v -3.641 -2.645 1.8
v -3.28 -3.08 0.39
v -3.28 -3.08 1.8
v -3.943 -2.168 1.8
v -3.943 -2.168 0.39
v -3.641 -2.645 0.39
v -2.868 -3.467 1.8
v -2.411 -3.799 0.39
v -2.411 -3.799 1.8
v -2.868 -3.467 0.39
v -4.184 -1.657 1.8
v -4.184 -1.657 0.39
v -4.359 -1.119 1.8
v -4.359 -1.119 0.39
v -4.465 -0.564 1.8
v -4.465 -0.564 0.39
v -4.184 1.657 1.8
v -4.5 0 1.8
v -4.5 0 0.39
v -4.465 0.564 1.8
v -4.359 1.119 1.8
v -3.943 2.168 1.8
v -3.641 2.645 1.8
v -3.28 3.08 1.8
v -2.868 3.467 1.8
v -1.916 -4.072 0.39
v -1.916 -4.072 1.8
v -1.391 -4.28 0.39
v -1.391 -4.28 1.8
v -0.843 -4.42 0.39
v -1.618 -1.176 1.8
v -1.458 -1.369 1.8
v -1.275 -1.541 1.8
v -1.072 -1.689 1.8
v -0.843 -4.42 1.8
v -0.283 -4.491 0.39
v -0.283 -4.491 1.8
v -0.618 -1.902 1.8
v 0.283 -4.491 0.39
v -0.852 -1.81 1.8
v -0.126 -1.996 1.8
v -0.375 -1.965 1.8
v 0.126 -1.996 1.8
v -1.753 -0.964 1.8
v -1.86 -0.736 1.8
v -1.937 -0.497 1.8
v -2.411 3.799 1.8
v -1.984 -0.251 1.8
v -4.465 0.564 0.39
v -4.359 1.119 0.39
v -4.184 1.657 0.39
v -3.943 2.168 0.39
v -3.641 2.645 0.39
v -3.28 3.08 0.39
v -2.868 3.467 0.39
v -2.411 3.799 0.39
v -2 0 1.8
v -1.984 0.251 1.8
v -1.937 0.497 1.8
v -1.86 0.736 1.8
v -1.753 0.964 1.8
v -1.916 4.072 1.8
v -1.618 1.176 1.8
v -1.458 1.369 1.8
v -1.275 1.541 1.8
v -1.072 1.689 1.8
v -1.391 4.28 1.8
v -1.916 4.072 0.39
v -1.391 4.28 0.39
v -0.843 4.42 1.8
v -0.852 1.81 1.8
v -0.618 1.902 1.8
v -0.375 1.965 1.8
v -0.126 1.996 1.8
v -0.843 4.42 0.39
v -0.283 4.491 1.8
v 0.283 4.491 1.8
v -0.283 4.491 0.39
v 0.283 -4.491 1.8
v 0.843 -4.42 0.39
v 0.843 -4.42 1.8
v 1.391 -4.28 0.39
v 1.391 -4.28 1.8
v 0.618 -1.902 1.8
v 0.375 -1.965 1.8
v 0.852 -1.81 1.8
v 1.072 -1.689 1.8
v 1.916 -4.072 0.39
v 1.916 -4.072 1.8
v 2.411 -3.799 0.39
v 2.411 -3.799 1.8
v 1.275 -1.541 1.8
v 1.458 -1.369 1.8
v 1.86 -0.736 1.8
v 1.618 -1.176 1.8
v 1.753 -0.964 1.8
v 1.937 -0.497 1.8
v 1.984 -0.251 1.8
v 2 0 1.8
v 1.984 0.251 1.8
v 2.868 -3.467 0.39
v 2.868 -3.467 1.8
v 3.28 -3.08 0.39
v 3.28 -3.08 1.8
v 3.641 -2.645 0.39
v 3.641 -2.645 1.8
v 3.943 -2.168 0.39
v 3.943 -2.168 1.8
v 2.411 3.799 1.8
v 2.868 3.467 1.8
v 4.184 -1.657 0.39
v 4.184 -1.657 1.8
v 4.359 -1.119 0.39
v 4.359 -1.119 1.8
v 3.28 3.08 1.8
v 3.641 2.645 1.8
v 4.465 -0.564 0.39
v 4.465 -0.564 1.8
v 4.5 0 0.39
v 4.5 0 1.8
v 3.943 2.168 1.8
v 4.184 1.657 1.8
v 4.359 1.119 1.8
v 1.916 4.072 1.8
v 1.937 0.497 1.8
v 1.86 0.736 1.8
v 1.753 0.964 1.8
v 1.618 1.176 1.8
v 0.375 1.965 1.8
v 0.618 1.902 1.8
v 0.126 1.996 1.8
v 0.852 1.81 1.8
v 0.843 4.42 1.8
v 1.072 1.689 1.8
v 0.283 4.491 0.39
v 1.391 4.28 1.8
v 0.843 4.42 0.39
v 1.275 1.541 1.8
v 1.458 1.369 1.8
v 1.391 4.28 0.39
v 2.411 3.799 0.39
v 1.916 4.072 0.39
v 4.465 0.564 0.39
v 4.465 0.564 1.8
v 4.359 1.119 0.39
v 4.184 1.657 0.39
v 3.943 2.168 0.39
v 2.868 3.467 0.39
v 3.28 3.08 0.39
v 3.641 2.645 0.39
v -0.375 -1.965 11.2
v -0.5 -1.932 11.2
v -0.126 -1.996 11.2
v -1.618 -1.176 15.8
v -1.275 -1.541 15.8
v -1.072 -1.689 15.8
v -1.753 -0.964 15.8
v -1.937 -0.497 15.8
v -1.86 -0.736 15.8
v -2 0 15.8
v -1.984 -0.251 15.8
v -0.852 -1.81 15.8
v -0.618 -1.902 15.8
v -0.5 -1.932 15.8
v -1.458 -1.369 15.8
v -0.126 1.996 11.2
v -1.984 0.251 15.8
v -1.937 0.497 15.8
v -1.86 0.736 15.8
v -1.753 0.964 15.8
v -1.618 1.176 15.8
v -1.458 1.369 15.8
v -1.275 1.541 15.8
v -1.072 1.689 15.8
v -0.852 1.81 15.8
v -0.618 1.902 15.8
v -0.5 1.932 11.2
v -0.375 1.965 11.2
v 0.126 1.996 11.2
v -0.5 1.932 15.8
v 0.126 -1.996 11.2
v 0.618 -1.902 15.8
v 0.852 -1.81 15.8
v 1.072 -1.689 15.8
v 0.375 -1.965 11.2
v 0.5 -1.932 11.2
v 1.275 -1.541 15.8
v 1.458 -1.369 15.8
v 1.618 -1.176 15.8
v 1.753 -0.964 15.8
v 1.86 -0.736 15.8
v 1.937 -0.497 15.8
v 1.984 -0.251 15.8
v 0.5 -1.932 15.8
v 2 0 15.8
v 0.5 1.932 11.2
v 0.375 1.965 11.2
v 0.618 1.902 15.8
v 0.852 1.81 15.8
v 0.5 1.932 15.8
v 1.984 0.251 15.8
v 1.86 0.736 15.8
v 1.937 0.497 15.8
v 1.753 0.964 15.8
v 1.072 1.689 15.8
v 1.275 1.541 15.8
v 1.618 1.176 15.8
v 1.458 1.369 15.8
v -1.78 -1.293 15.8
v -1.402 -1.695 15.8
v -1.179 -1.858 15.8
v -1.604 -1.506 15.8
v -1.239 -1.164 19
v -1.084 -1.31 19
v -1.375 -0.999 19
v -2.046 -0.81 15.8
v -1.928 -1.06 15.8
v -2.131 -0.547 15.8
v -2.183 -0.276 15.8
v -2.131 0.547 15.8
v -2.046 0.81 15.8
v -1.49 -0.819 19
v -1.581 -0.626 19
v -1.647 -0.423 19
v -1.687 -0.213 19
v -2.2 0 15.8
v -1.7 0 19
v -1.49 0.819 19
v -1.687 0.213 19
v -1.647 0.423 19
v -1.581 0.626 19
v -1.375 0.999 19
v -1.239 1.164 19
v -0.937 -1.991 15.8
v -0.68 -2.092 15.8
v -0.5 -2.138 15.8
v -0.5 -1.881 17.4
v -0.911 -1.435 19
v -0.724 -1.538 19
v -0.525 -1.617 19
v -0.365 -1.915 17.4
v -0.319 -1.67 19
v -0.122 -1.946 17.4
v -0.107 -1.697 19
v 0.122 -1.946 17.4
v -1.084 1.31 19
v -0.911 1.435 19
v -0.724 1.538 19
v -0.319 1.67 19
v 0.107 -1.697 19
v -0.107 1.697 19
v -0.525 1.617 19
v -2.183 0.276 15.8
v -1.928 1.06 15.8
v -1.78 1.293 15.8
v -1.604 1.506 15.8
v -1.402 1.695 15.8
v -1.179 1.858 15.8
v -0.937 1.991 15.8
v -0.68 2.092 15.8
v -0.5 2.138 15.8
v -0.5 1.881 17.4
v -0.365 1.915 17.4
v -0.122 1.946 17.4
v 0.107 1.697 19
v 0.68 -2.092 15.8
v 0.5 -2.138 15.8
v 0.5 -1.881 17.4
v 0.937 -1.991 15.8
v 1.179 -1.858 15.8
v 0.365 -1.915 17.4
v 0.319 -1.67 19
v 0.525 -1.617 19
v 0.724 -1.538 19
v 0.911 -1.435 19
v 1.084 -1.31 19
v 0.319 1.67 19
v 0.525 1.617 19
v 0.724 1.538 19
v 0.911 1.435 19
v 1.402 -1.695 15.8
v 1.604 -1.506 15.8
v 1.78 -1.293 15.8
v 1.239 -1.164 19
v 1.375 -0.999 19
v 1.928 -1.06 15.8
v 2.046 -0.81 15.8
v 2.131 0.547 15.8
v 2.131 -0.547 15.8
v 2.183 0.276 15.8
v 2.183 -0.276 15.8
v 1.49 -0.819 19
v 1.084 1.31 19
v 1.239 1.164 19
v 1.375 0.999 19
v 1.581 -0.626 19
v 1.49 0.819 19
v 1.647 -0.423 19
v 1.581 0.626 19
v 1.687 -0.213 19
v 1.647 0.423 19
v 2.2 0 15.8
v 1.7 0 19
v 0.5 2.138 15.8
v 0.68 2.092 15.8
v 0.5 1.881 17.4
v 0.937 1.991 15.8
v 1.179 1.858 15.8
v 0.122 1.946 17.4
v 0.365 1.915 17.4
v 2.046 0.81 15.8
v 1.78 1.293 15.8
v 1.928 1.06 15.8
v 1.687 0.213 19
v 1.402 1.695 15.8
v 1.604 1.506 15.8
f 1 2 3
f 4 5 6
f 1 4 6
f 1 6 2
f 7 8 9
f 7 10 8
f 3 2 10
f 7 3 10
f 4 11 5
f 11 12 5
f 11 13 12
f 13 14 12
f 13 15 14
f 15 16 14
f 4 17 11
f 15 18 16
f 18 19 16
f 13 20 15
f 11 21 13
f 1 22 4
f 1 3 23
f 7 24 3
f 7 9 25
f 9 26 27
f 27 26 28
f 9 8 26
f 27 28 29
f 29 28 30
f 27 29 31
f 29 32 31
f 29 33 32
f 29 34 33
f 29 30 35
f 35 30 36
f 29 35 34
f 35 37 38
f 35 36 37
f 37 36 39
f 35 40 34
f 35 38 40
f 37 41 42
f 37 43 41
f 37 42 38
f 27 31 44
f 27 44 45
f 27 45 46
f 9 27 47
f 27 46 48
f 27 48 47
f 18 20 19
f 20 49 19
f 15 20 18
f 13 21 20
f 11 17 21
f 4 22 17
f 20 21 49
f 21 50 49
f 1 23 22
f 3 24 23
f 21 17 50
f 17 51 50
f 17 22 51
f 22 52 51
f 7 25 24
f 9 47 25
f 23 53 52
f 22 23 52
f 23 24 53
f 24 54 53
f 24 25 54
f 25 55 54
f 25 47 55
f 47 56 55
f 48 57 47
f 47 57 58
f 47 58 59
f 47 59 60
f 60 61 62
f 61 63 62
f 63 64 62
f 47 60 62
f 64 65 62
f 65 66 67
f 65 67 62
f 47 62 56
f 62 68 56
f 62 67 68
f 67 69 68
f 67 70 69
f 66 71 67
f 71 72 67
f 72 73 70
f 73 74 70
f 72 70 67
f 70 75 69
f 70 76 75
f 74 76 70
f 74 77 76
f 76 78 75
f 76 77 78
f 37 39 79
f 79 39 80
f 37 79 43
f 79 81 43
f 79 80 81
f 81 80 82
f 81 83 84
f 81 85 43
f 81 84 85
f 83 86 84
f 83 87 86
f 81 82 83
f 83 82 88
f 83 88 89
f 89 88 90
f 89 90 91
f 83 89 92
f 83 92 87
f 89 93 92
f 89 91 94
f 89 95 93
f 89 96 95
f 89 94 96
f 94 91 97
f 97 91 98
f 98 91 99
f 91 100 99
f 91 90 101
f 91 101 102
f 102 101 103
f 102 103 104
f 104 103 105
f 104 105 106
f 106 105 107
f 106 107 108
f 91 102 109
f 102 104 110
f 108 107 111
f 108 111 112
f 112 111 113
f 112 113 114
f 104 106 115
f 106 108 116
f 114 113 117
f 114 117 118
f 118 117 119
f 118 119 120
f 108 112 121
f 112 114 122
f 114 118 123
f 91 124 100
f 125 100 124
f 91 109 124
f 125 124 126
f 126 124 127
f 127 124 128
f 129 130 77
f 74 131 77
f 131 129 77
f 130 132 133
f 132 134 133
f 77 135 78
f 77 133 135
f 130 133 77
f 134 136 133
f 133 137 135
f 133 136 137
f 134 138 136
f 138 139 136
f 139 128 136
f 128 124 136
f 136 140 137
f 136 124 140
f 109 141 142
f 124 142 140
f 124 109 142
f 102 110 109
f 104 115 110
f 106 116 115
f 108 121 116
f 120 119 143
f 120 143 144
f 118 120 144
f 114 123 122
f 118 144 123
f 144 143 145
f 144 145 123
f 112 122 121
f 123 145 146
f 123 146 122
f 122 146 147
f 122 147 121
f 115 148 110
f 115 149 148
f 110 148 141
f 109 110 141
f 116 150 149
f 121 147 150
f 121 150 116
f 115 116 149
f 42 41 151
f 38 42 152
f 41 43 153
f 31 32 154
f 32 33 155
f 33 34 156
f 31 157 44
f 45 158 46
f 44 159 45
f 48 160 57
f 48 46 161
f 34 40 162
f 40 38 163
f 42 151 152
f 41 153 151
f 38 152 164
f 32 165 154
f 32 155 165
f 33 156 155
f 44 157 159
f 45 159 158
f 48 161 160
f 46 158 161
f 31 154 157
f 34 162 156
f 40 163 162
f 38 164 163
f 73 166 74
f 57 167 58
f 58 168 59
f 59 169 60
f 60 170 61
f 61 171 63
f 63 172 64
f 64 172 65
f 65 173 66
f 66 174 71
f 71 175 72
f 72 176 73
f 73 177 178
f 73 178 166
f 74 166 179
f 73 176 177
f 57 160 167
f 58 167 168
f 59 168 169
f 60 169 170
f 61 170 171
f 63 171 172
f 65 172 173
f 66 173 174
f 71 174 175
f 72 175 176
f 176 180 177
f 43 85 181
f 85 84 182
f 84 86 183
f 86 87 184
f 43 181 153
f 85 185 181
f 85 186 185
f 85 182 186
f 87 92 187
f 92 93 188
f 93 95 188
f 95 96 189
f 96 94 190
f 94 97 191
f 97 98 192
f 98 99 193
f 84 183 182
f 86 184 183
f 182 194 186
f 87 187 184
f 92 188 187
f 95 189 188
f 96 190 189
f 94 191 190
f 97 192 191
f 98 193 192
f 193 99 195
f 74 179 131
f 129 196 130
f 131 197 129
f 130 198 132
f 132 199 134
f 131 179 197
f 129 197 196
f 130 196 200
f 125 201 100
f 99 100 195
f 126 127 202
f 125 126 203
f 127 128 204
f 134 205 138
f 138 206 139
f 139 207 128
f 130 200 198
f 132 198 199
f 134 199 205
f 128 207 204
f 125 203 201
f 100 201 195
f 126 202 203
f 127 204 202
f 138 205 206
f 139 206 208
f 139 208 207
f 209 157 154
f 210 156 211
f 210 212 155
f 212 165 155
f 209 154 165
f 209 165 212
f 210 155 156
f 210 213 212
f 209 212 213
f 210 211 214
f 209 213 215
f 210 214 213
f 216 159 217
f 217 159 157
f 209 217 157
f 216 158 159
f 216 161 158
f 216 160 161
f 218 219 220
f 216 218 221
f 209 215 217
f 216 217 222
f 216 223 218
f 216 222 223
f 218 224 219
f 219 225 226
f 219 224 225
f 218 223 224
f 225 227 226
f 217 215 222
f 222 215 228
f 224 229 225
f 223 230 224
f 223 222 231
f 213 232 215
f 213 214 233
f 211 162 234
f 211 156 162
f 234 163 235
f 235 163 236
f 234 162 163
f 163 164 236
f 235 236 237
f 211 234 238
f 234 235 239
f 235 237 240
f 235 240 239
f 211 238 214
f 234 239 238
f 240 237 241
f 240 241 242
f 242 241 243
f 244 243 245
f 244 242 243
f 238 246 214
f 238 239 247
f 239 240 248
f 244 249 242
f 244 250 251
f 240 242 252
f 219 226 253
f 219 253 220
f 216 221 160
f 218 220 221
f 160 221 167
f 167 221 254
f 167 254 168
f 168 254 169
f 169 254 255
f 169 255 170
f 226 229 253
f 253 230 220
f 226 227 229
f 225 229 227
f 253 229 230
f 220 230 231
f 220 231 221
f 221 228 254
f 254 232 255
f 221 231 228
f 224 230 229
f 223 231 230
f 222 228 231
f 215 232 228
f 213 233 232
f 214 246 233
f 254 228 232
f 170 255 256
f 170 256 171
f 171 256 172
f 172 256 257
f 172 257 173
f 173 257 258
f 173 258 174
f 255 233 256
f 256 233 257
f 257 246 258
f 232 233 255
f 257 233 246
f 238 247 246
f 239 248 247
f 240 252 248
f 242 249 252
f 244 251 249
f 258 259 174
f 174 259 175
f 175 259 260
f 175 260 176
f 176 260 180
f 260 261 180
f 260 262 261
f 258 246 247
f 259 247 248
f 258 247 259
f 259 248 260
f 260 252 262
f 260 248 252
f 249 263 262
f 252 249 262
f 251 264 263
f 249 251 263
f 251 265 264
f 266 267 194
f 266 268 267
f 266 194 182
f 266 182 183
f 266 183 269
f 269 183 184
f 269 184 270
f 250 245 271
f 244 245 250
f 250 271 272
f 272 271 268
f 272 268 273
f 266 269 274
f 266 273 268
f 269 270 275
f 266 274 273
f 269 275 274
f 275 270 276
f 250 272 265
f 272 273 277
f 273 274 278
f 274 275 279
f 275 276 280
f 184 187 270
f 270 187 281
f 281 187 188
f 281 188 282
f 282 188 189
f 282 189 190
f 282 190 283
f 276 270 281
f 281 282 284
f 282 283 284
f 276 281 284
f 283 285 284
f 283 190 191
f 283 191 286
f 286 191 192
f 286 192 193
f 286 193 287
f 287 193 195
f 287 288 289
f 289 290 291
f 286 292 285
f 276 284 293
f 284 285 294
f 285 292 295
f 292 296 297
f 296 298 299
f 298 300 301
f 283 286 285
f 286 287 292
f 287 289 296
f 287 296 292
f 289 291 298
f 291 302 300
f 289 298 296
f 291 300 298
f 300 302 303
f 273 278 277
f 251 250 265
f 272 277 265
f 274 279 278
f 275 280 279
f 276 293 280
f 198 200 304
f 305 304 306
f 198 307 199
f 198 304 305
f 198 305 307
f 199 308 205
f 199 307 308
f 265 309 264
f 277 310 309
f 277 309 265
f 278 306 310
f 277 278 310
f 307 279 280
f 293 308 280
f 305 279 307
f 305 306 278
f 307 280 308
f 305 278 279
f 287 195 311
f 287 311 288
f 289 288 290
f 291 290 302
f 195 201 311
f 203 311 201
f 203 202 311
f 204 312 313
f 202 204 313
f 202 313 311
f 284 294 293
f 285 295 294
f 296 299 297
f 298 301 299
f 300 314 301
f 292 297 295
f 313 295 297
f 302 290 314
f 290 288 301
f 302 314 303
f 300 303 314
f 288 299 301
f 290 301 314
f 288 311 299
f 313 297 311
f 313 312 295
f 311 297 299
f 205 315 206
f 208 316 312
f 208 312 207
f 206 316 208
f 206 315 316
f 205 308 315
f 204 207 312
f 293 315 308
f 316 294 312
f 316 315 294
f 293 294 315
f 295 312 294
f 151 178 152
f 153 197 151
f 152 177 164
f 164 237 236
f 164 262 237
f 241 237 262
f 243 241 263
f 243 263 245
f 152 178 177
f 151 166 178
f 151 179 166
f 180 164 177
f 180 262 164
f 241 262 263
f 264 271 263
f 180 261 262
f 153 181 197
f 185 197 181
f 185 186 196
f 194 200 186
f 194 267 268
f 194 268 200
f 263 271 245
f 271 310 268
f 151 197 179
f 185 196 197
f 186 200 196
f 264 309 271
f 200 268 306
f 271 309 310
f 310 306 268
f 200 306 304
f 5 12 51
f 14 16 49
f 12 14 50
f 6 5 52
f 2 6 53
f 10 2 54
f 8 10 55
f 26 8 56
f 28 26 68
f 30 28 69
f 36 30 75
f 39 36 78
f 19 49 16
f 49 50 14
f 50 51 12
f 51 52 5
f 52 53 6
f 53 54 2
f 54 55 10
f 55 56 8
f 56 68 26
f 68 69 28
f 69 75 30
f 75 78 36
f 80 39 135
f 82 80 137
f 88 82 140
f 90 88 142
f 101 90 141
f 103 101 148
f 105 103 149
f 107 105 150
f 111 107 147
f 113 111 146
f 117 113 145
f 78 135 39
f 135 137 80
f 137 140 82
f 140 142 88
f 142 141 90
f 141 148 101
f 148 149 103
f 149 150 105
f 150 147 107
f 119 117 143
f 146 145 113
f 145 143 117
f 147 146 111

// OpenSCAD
// ====================================================================
// [PRINT 08-C] Standalone 3D-Printable Precision Axle Pin (Flush Fit)
//
// Engineering Specifications:
// - Station Clevis Total Outer Span: 14.0mm (4mm Ear1 + 6mm Channel + 4mm Ear2)
// - Shaft Diameter: 4.0mm (Fits 4.2mm sheave bore & 5.2mm roof bore)
// - Shaft Length: EXACTLY 14.0mm (0.0mm extra protrusion past clevis walls!)
// - Head: 9.0mm flat disk x 1.8mm thickness (Rests flush against Ear 1 outer face)
// - Tip: 4.4mm split-prong barb tip for snap-fitting retaining cap
// ====================================================================

$fn = 50;

pin_shaft_d  = 4.0;   // 4.0mm rod shaft (fits 4.2mm sheave bore with 0.2mm clearance)
pin_length   = 14.0;  // EXACT 14.0mm shaft length matching total clevis span
head_d       = 9.0;   // Flat head disk diameter
head_th      = 1.8;   // Flat head thickness
tip_barb_d   = 4.4;   // Split-prong barb tip diameter
tip_length   = 3.2;   // Tip length

module precision_axle_pin() {
    difference() {
        union() {
            // Flat base head resting flat at Z = 0
            cylinder(d = head_d, h = head_th);
            
            // Main 4.0mm rod shaft column (exact 14.0mm length)
            translate([0, 0, head_th])
                cylinder(d = pin_shaft_d, h = pin_length);

            // Split-prong snap barb tip at end of shaft
            translate([0, 0, head_th + pin_length])
                cylinder(d1 = tip_barb_d, d2 = pin_shaft_d - 0.6, h = tip_length);
        }

        // Center flex-slit (gives spring flex space for cap snap-fit)
        translate([0, 0, head_th + pin_length - 1.5])
            cube([1.0, tip_barb_d + 2.0, tip_length + 3.0], center = true);

        // Self-guiding chamfer on base head
        translate([0, 0, -0.01])
            cylinder(d1 = head_d + 1.0, d2 = head_d, h = 0.4);
    }
}

precision_axle_pin();
